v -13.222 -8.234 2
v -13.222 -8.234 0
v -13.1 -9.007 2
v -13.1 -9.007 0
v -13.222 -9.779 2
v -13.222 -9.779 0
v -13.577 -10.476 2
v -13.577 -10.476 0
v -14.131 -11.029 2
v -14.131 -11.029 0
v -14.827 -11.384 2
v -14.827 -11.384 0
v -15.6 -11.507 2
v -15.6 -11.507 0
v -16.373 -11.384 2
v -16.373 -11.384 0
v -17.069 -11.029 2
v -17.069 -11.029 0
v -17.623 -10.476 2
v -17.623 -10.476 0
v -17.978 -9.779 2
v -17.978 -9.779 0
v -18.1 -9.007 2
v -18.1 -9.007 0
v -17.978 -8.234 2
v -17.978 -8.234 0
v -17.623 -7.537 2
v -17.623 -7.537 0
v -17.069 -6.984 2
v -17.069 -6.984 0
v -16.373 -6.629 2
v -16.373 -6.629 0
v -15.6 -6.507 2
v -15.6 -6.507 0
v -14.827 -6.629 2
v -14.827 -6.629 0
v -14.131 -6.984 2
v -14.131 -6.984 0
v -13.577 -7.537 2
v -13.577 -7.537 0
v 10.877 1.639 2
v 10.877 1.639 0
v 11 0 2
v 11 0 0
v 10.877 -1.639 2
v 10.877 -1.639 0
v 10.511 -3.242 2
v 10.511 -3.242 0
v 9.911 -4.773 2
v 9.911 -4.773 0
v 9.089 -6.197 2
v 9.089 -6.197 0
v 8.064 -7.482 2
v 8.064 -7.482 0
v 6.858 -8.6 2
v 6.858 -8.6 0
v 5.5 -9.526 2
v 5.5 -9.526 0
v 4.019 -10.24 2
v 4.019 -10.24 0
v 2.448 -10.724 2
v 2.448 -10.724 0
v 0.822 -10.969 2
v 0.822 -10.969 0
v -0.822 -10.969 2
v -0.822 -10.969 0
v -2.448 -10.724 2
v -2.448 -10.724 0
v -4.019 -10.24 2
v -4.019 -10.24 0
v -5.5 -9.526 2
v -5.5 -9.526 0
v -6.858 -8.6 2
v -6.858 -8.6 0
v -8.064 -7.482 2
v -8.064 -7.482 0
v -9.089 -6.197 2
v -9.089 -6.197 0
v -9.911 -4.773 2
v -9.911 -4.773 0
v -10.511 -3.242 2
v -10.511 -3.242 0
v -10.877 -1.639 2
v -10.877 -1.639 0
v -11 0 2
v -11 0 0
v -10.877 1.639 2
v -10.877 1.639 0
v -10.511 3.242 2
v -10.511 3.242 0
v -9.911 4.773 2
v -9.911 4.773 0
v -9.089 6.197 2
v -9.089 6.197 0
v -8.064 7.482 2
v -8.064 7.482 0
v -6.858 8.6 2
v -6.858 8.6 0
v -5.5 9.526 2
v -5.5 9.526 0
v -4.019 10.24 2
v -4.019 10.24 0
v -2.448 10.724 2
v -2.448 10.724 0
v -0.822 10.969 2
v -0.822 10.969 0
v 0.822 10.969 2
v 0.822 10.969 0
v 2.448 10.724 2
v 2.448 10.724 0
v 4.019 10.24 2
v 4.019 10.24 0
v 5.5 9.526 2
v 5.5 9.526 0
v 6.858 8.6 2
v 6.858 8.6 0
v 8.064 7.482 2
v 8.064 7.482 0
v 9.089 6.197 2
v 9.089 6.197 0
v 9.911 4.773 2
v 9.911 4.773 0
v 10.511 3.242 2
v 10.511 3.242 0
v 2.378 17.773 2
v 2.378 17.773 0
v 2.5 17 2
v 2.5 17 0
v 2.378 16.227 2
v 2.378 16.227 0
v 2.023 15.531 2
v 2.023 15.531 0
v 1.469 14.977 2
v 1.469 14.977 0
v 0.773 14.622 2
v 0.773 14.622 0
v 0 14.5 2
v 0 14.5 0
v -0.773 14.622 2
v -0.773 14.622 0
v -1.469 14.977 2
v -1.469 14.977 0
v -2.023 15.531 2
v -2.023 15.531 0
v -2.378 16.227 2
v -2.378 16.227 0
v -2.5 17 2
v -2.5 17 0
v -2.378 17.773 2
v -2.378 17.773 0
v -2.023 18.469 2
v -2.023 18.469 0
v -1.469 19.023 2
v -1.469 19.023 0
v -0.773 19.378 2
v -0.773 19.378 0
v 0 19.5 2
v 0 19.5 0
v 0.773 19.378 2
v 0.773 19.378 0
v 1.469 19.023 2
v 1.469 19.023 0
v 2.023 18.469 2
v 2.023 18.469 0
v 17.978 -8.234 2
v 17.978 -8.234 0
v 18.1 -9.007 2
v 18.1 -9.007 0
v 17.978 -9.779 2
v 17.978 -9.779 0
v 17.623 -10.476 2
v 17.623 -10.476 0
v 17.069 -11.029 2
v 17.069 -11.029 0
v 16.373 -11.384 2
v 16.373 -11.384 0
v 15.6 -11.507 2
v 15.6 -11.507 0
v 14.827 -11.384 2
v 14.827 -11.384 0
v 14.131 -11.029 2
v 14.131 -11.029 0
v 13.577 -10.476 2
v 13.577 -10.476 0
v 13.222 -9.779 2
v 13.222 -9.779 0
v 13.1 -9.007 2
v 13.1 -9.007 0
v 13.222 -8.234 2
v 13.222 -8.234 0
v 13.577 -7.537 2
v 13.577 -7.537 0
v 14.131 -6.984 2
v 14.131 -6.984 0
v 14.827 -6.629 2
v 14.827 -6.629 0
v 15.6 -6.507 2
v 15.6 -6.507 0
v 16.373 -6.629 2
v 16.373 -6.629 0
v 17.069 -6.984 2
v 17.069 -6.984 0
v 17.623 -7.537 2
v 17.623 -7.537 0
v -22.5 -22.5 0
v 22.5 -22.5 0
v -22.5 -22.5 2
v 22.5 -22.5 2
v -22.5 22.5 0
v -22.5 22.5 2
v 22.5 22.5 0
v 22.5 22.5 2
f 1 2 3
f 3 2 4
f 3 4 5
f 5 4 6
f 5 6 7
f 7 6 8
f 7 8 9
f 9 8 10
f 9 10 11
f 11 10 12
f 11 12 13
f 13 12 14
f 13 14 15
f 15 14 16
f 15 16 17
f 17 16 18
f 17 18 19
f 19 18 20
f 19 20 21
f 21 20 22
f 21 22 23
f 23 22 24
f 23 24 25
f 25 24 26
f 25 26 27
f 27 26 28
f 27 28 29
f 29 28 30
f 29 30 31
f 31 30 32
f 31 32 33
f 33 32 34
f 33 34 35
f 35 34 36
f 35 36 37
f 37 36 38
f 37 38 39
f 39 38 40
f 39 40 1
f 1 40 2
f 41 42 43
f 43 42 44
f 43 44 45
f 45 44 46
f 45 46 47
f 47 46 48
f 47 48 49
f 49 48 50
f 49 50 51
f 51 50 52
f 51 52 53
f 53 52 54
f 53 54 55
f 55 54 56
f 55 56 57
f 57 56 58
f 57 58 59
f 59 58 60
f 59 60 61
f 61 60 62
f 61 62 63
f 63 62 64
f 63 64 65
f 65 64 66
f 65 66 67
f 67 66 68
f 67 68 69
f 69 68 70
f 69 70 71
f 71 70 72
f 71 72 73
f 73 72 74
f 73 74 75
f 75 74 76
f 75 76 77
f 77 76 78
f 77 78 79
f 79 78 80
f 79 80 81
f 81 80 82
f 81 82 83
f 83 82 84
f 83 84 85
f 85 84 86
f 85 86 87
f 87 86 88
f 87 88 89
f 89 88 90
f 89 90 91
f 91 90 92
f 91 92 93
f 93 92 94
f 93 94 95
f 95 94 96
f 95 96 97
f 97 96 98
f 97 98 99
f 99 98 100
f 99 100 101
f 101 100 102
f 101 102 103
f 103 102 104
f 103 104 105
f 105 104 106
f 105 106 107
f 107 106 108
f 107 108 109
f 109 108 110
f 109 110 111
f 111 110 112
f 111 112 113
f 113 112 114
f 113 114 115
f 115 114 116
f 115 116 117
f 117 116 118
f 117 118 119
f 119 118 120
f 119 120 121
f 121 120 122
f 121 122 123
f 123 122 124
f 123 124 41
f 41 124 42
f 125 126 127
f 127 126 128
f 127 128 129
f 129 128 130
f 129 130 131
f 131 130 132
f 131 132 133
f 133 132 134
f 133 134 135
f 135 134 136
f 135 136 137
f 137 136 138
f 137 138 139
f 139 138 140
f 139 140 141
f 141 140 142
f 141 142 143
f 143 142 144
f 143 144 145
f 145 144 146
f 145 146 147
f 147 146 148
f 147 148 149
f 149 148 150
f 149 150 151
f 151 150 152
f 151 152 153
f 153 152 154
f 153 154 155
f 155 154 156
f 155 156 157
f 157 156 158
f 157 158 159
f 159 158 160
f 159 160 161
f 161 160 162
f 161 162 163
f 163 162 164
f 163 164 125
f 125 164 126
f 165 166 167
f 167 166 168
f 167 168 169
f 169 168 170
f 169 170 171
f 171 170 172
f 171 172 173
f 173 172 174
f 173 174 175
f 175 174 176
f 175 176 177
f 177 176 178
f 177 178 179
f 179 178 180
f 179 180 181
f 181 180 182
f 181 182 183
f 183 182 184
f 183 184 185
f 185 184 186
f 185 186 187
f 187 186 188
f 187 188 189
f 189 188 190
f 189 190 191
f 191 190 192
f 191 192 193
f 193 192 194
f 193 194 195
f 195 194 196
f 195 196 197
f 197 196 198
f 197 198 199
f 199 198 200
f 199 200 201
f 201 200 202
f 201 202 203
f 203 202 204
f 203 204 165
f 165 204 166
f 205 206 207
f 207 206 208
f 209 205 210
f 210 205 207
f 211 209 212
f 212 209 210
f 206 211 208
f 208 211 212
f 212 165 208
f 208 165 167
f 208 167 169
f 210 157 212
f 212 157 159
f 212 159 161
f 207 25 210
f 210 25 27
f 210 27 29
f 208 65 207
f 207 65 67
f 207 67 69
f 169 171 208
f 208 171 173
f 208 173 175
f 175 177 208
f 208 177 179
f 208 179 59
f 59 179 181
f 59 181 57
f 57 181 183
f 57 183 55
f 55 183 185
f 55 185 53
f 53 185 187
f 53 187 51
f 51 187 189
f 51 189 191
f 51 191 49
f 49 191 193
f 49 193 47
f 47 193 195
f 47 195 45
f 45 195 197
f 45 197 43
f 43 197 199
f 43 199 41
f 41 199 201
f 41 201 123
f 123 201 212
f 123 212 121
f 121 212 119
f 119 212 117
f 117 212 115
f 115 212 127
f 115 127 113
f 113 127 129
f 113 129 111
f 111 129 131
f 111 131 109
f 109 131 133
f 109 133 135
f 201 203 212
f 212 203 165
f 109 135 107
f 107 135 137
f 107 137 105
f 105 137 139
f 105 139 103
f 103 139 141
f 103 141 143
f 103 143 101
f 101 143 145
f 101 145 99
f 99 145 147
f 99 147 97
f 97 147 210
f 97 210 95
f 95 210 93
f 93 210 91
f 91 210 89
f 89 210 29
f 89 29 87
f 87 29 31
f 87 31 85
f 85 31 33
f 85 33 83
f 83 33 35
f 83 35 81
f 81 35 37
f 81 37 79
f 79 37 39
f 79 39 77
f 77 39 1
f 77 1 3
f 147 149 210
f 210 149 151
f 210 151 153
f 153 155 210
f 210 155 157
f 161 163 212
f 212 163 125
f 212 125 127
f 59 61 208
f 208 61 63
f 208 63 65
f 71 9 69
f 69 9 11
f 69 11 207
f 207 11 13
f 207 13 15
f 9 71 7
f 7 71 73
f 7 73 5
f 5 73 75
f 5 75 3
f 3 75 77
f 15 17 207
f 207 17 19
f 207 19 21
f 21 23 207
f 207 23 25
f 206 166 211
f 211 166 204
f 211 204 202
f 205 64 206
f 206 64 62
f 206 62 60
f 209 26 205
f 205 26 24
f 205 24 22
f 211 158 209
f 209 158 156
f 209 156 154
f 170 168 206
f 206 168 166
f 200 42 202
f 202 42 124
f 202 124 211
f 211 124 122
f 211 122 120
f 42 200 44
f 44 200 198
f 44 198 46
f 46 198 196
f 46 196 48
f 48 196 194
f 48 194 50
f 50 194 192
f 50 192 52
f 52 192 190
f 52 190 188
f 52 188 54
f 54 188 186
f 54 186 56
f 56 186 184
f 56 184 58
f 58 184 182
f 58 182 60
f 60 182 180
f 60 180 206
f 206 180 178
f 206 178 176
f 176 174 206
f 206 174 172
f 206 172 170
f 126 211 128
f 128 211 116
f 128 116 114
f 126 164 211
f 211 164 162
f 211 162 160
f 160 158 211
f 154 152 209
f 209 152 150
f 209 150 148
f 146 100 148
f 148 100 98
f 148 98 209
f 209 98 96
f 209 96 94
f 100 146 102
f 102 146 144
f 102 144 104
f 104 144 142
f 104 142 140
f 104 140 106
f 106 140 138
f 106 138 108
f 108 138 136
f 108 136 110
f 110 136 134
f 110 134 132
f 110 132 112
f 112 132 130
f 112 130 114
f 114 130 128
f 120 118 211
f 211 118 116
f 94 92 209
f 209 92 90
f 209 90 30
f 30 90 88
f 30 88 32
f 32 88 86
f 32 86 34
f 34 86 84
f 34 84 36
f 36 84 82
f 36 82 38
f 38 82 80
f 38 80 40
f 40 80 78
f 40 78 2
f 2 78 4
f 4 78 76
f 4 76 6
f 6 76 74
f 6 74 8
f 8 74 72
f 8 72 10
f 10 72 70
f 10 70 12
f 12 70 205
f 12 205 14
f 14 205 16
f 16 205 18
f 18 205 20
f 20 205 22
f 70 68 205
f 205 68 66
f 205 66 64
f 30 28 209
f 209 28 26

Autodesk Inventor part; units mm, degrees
ref_plane "YZ Plane" through (0, 0, 0) normal (1, 0, 0) x (0, 1, 0)
ref_plane "XZ Plane" through (0, 0, 0) normal (0, 1, 0) x (-1, 0, 0)
ref_plane "XY Plane" through (0, 0, 0) normal (0, 0, 1) x (1, 0, 0)
sketch "Sketch1" plane through (0, 0, 0) normal (0, 0, 1) x (1, 0, 0)
  line L0 (-22.5, -22.5) -> (22.5, -22.5)
  line L1 (22.5, -22.5) -> (22.5, 22.5)
  line L2 (22.5, 22.5) -> (-22.5, 22.5)
  line L3 (-22.5, 22.5) -> (-22.5, -22.5)
  line L4 (-22.5, -22.5) -> (22.5, 22.5) construction
  line L5 (22.5, -22.5) -> (-22.5, 22.5) construction
  circle A0 centre (0, 0) radius 11
  line L6 (0, 0) -> (0, 17)
  line L7 (0, 0) -> (15.6, -9.0067)
  line L8 (0, 0) -> (-15.6, -9.0067)
  circle A1 centre (0, 17) radius 2.5
  circle A2 centre (15.6, -9.0067) radius 2.5
  circle A3 centre (-15.6, -9.0067) radius 2.5
  point P0 (22.5, -11.0947)
  point P1 (-22.5, -11.0947)
  dimension "d0" = 45
  dimension "d1" = 45
  dimension "d2" = 22
  dimension "d3" = 17
  dimension "d4" = 15.6
  dimension "d5" = 120
  dimension "d6" = 15.6
  dimension "d7" = 120
  dimension "d8" = 5
  dimension "d9" = 5
  dimension "d10" = 5
extrude "Extrusion2" add sketch "Sketch1" along normal blind 2
equation "\"d1\" = d0"
equation "\"d4\" = d6"
equation "\"d7\" = d5"
equation "\"d9\" = d8"
equation "\"d10\" = d8"
properties part number "mount_v08"
